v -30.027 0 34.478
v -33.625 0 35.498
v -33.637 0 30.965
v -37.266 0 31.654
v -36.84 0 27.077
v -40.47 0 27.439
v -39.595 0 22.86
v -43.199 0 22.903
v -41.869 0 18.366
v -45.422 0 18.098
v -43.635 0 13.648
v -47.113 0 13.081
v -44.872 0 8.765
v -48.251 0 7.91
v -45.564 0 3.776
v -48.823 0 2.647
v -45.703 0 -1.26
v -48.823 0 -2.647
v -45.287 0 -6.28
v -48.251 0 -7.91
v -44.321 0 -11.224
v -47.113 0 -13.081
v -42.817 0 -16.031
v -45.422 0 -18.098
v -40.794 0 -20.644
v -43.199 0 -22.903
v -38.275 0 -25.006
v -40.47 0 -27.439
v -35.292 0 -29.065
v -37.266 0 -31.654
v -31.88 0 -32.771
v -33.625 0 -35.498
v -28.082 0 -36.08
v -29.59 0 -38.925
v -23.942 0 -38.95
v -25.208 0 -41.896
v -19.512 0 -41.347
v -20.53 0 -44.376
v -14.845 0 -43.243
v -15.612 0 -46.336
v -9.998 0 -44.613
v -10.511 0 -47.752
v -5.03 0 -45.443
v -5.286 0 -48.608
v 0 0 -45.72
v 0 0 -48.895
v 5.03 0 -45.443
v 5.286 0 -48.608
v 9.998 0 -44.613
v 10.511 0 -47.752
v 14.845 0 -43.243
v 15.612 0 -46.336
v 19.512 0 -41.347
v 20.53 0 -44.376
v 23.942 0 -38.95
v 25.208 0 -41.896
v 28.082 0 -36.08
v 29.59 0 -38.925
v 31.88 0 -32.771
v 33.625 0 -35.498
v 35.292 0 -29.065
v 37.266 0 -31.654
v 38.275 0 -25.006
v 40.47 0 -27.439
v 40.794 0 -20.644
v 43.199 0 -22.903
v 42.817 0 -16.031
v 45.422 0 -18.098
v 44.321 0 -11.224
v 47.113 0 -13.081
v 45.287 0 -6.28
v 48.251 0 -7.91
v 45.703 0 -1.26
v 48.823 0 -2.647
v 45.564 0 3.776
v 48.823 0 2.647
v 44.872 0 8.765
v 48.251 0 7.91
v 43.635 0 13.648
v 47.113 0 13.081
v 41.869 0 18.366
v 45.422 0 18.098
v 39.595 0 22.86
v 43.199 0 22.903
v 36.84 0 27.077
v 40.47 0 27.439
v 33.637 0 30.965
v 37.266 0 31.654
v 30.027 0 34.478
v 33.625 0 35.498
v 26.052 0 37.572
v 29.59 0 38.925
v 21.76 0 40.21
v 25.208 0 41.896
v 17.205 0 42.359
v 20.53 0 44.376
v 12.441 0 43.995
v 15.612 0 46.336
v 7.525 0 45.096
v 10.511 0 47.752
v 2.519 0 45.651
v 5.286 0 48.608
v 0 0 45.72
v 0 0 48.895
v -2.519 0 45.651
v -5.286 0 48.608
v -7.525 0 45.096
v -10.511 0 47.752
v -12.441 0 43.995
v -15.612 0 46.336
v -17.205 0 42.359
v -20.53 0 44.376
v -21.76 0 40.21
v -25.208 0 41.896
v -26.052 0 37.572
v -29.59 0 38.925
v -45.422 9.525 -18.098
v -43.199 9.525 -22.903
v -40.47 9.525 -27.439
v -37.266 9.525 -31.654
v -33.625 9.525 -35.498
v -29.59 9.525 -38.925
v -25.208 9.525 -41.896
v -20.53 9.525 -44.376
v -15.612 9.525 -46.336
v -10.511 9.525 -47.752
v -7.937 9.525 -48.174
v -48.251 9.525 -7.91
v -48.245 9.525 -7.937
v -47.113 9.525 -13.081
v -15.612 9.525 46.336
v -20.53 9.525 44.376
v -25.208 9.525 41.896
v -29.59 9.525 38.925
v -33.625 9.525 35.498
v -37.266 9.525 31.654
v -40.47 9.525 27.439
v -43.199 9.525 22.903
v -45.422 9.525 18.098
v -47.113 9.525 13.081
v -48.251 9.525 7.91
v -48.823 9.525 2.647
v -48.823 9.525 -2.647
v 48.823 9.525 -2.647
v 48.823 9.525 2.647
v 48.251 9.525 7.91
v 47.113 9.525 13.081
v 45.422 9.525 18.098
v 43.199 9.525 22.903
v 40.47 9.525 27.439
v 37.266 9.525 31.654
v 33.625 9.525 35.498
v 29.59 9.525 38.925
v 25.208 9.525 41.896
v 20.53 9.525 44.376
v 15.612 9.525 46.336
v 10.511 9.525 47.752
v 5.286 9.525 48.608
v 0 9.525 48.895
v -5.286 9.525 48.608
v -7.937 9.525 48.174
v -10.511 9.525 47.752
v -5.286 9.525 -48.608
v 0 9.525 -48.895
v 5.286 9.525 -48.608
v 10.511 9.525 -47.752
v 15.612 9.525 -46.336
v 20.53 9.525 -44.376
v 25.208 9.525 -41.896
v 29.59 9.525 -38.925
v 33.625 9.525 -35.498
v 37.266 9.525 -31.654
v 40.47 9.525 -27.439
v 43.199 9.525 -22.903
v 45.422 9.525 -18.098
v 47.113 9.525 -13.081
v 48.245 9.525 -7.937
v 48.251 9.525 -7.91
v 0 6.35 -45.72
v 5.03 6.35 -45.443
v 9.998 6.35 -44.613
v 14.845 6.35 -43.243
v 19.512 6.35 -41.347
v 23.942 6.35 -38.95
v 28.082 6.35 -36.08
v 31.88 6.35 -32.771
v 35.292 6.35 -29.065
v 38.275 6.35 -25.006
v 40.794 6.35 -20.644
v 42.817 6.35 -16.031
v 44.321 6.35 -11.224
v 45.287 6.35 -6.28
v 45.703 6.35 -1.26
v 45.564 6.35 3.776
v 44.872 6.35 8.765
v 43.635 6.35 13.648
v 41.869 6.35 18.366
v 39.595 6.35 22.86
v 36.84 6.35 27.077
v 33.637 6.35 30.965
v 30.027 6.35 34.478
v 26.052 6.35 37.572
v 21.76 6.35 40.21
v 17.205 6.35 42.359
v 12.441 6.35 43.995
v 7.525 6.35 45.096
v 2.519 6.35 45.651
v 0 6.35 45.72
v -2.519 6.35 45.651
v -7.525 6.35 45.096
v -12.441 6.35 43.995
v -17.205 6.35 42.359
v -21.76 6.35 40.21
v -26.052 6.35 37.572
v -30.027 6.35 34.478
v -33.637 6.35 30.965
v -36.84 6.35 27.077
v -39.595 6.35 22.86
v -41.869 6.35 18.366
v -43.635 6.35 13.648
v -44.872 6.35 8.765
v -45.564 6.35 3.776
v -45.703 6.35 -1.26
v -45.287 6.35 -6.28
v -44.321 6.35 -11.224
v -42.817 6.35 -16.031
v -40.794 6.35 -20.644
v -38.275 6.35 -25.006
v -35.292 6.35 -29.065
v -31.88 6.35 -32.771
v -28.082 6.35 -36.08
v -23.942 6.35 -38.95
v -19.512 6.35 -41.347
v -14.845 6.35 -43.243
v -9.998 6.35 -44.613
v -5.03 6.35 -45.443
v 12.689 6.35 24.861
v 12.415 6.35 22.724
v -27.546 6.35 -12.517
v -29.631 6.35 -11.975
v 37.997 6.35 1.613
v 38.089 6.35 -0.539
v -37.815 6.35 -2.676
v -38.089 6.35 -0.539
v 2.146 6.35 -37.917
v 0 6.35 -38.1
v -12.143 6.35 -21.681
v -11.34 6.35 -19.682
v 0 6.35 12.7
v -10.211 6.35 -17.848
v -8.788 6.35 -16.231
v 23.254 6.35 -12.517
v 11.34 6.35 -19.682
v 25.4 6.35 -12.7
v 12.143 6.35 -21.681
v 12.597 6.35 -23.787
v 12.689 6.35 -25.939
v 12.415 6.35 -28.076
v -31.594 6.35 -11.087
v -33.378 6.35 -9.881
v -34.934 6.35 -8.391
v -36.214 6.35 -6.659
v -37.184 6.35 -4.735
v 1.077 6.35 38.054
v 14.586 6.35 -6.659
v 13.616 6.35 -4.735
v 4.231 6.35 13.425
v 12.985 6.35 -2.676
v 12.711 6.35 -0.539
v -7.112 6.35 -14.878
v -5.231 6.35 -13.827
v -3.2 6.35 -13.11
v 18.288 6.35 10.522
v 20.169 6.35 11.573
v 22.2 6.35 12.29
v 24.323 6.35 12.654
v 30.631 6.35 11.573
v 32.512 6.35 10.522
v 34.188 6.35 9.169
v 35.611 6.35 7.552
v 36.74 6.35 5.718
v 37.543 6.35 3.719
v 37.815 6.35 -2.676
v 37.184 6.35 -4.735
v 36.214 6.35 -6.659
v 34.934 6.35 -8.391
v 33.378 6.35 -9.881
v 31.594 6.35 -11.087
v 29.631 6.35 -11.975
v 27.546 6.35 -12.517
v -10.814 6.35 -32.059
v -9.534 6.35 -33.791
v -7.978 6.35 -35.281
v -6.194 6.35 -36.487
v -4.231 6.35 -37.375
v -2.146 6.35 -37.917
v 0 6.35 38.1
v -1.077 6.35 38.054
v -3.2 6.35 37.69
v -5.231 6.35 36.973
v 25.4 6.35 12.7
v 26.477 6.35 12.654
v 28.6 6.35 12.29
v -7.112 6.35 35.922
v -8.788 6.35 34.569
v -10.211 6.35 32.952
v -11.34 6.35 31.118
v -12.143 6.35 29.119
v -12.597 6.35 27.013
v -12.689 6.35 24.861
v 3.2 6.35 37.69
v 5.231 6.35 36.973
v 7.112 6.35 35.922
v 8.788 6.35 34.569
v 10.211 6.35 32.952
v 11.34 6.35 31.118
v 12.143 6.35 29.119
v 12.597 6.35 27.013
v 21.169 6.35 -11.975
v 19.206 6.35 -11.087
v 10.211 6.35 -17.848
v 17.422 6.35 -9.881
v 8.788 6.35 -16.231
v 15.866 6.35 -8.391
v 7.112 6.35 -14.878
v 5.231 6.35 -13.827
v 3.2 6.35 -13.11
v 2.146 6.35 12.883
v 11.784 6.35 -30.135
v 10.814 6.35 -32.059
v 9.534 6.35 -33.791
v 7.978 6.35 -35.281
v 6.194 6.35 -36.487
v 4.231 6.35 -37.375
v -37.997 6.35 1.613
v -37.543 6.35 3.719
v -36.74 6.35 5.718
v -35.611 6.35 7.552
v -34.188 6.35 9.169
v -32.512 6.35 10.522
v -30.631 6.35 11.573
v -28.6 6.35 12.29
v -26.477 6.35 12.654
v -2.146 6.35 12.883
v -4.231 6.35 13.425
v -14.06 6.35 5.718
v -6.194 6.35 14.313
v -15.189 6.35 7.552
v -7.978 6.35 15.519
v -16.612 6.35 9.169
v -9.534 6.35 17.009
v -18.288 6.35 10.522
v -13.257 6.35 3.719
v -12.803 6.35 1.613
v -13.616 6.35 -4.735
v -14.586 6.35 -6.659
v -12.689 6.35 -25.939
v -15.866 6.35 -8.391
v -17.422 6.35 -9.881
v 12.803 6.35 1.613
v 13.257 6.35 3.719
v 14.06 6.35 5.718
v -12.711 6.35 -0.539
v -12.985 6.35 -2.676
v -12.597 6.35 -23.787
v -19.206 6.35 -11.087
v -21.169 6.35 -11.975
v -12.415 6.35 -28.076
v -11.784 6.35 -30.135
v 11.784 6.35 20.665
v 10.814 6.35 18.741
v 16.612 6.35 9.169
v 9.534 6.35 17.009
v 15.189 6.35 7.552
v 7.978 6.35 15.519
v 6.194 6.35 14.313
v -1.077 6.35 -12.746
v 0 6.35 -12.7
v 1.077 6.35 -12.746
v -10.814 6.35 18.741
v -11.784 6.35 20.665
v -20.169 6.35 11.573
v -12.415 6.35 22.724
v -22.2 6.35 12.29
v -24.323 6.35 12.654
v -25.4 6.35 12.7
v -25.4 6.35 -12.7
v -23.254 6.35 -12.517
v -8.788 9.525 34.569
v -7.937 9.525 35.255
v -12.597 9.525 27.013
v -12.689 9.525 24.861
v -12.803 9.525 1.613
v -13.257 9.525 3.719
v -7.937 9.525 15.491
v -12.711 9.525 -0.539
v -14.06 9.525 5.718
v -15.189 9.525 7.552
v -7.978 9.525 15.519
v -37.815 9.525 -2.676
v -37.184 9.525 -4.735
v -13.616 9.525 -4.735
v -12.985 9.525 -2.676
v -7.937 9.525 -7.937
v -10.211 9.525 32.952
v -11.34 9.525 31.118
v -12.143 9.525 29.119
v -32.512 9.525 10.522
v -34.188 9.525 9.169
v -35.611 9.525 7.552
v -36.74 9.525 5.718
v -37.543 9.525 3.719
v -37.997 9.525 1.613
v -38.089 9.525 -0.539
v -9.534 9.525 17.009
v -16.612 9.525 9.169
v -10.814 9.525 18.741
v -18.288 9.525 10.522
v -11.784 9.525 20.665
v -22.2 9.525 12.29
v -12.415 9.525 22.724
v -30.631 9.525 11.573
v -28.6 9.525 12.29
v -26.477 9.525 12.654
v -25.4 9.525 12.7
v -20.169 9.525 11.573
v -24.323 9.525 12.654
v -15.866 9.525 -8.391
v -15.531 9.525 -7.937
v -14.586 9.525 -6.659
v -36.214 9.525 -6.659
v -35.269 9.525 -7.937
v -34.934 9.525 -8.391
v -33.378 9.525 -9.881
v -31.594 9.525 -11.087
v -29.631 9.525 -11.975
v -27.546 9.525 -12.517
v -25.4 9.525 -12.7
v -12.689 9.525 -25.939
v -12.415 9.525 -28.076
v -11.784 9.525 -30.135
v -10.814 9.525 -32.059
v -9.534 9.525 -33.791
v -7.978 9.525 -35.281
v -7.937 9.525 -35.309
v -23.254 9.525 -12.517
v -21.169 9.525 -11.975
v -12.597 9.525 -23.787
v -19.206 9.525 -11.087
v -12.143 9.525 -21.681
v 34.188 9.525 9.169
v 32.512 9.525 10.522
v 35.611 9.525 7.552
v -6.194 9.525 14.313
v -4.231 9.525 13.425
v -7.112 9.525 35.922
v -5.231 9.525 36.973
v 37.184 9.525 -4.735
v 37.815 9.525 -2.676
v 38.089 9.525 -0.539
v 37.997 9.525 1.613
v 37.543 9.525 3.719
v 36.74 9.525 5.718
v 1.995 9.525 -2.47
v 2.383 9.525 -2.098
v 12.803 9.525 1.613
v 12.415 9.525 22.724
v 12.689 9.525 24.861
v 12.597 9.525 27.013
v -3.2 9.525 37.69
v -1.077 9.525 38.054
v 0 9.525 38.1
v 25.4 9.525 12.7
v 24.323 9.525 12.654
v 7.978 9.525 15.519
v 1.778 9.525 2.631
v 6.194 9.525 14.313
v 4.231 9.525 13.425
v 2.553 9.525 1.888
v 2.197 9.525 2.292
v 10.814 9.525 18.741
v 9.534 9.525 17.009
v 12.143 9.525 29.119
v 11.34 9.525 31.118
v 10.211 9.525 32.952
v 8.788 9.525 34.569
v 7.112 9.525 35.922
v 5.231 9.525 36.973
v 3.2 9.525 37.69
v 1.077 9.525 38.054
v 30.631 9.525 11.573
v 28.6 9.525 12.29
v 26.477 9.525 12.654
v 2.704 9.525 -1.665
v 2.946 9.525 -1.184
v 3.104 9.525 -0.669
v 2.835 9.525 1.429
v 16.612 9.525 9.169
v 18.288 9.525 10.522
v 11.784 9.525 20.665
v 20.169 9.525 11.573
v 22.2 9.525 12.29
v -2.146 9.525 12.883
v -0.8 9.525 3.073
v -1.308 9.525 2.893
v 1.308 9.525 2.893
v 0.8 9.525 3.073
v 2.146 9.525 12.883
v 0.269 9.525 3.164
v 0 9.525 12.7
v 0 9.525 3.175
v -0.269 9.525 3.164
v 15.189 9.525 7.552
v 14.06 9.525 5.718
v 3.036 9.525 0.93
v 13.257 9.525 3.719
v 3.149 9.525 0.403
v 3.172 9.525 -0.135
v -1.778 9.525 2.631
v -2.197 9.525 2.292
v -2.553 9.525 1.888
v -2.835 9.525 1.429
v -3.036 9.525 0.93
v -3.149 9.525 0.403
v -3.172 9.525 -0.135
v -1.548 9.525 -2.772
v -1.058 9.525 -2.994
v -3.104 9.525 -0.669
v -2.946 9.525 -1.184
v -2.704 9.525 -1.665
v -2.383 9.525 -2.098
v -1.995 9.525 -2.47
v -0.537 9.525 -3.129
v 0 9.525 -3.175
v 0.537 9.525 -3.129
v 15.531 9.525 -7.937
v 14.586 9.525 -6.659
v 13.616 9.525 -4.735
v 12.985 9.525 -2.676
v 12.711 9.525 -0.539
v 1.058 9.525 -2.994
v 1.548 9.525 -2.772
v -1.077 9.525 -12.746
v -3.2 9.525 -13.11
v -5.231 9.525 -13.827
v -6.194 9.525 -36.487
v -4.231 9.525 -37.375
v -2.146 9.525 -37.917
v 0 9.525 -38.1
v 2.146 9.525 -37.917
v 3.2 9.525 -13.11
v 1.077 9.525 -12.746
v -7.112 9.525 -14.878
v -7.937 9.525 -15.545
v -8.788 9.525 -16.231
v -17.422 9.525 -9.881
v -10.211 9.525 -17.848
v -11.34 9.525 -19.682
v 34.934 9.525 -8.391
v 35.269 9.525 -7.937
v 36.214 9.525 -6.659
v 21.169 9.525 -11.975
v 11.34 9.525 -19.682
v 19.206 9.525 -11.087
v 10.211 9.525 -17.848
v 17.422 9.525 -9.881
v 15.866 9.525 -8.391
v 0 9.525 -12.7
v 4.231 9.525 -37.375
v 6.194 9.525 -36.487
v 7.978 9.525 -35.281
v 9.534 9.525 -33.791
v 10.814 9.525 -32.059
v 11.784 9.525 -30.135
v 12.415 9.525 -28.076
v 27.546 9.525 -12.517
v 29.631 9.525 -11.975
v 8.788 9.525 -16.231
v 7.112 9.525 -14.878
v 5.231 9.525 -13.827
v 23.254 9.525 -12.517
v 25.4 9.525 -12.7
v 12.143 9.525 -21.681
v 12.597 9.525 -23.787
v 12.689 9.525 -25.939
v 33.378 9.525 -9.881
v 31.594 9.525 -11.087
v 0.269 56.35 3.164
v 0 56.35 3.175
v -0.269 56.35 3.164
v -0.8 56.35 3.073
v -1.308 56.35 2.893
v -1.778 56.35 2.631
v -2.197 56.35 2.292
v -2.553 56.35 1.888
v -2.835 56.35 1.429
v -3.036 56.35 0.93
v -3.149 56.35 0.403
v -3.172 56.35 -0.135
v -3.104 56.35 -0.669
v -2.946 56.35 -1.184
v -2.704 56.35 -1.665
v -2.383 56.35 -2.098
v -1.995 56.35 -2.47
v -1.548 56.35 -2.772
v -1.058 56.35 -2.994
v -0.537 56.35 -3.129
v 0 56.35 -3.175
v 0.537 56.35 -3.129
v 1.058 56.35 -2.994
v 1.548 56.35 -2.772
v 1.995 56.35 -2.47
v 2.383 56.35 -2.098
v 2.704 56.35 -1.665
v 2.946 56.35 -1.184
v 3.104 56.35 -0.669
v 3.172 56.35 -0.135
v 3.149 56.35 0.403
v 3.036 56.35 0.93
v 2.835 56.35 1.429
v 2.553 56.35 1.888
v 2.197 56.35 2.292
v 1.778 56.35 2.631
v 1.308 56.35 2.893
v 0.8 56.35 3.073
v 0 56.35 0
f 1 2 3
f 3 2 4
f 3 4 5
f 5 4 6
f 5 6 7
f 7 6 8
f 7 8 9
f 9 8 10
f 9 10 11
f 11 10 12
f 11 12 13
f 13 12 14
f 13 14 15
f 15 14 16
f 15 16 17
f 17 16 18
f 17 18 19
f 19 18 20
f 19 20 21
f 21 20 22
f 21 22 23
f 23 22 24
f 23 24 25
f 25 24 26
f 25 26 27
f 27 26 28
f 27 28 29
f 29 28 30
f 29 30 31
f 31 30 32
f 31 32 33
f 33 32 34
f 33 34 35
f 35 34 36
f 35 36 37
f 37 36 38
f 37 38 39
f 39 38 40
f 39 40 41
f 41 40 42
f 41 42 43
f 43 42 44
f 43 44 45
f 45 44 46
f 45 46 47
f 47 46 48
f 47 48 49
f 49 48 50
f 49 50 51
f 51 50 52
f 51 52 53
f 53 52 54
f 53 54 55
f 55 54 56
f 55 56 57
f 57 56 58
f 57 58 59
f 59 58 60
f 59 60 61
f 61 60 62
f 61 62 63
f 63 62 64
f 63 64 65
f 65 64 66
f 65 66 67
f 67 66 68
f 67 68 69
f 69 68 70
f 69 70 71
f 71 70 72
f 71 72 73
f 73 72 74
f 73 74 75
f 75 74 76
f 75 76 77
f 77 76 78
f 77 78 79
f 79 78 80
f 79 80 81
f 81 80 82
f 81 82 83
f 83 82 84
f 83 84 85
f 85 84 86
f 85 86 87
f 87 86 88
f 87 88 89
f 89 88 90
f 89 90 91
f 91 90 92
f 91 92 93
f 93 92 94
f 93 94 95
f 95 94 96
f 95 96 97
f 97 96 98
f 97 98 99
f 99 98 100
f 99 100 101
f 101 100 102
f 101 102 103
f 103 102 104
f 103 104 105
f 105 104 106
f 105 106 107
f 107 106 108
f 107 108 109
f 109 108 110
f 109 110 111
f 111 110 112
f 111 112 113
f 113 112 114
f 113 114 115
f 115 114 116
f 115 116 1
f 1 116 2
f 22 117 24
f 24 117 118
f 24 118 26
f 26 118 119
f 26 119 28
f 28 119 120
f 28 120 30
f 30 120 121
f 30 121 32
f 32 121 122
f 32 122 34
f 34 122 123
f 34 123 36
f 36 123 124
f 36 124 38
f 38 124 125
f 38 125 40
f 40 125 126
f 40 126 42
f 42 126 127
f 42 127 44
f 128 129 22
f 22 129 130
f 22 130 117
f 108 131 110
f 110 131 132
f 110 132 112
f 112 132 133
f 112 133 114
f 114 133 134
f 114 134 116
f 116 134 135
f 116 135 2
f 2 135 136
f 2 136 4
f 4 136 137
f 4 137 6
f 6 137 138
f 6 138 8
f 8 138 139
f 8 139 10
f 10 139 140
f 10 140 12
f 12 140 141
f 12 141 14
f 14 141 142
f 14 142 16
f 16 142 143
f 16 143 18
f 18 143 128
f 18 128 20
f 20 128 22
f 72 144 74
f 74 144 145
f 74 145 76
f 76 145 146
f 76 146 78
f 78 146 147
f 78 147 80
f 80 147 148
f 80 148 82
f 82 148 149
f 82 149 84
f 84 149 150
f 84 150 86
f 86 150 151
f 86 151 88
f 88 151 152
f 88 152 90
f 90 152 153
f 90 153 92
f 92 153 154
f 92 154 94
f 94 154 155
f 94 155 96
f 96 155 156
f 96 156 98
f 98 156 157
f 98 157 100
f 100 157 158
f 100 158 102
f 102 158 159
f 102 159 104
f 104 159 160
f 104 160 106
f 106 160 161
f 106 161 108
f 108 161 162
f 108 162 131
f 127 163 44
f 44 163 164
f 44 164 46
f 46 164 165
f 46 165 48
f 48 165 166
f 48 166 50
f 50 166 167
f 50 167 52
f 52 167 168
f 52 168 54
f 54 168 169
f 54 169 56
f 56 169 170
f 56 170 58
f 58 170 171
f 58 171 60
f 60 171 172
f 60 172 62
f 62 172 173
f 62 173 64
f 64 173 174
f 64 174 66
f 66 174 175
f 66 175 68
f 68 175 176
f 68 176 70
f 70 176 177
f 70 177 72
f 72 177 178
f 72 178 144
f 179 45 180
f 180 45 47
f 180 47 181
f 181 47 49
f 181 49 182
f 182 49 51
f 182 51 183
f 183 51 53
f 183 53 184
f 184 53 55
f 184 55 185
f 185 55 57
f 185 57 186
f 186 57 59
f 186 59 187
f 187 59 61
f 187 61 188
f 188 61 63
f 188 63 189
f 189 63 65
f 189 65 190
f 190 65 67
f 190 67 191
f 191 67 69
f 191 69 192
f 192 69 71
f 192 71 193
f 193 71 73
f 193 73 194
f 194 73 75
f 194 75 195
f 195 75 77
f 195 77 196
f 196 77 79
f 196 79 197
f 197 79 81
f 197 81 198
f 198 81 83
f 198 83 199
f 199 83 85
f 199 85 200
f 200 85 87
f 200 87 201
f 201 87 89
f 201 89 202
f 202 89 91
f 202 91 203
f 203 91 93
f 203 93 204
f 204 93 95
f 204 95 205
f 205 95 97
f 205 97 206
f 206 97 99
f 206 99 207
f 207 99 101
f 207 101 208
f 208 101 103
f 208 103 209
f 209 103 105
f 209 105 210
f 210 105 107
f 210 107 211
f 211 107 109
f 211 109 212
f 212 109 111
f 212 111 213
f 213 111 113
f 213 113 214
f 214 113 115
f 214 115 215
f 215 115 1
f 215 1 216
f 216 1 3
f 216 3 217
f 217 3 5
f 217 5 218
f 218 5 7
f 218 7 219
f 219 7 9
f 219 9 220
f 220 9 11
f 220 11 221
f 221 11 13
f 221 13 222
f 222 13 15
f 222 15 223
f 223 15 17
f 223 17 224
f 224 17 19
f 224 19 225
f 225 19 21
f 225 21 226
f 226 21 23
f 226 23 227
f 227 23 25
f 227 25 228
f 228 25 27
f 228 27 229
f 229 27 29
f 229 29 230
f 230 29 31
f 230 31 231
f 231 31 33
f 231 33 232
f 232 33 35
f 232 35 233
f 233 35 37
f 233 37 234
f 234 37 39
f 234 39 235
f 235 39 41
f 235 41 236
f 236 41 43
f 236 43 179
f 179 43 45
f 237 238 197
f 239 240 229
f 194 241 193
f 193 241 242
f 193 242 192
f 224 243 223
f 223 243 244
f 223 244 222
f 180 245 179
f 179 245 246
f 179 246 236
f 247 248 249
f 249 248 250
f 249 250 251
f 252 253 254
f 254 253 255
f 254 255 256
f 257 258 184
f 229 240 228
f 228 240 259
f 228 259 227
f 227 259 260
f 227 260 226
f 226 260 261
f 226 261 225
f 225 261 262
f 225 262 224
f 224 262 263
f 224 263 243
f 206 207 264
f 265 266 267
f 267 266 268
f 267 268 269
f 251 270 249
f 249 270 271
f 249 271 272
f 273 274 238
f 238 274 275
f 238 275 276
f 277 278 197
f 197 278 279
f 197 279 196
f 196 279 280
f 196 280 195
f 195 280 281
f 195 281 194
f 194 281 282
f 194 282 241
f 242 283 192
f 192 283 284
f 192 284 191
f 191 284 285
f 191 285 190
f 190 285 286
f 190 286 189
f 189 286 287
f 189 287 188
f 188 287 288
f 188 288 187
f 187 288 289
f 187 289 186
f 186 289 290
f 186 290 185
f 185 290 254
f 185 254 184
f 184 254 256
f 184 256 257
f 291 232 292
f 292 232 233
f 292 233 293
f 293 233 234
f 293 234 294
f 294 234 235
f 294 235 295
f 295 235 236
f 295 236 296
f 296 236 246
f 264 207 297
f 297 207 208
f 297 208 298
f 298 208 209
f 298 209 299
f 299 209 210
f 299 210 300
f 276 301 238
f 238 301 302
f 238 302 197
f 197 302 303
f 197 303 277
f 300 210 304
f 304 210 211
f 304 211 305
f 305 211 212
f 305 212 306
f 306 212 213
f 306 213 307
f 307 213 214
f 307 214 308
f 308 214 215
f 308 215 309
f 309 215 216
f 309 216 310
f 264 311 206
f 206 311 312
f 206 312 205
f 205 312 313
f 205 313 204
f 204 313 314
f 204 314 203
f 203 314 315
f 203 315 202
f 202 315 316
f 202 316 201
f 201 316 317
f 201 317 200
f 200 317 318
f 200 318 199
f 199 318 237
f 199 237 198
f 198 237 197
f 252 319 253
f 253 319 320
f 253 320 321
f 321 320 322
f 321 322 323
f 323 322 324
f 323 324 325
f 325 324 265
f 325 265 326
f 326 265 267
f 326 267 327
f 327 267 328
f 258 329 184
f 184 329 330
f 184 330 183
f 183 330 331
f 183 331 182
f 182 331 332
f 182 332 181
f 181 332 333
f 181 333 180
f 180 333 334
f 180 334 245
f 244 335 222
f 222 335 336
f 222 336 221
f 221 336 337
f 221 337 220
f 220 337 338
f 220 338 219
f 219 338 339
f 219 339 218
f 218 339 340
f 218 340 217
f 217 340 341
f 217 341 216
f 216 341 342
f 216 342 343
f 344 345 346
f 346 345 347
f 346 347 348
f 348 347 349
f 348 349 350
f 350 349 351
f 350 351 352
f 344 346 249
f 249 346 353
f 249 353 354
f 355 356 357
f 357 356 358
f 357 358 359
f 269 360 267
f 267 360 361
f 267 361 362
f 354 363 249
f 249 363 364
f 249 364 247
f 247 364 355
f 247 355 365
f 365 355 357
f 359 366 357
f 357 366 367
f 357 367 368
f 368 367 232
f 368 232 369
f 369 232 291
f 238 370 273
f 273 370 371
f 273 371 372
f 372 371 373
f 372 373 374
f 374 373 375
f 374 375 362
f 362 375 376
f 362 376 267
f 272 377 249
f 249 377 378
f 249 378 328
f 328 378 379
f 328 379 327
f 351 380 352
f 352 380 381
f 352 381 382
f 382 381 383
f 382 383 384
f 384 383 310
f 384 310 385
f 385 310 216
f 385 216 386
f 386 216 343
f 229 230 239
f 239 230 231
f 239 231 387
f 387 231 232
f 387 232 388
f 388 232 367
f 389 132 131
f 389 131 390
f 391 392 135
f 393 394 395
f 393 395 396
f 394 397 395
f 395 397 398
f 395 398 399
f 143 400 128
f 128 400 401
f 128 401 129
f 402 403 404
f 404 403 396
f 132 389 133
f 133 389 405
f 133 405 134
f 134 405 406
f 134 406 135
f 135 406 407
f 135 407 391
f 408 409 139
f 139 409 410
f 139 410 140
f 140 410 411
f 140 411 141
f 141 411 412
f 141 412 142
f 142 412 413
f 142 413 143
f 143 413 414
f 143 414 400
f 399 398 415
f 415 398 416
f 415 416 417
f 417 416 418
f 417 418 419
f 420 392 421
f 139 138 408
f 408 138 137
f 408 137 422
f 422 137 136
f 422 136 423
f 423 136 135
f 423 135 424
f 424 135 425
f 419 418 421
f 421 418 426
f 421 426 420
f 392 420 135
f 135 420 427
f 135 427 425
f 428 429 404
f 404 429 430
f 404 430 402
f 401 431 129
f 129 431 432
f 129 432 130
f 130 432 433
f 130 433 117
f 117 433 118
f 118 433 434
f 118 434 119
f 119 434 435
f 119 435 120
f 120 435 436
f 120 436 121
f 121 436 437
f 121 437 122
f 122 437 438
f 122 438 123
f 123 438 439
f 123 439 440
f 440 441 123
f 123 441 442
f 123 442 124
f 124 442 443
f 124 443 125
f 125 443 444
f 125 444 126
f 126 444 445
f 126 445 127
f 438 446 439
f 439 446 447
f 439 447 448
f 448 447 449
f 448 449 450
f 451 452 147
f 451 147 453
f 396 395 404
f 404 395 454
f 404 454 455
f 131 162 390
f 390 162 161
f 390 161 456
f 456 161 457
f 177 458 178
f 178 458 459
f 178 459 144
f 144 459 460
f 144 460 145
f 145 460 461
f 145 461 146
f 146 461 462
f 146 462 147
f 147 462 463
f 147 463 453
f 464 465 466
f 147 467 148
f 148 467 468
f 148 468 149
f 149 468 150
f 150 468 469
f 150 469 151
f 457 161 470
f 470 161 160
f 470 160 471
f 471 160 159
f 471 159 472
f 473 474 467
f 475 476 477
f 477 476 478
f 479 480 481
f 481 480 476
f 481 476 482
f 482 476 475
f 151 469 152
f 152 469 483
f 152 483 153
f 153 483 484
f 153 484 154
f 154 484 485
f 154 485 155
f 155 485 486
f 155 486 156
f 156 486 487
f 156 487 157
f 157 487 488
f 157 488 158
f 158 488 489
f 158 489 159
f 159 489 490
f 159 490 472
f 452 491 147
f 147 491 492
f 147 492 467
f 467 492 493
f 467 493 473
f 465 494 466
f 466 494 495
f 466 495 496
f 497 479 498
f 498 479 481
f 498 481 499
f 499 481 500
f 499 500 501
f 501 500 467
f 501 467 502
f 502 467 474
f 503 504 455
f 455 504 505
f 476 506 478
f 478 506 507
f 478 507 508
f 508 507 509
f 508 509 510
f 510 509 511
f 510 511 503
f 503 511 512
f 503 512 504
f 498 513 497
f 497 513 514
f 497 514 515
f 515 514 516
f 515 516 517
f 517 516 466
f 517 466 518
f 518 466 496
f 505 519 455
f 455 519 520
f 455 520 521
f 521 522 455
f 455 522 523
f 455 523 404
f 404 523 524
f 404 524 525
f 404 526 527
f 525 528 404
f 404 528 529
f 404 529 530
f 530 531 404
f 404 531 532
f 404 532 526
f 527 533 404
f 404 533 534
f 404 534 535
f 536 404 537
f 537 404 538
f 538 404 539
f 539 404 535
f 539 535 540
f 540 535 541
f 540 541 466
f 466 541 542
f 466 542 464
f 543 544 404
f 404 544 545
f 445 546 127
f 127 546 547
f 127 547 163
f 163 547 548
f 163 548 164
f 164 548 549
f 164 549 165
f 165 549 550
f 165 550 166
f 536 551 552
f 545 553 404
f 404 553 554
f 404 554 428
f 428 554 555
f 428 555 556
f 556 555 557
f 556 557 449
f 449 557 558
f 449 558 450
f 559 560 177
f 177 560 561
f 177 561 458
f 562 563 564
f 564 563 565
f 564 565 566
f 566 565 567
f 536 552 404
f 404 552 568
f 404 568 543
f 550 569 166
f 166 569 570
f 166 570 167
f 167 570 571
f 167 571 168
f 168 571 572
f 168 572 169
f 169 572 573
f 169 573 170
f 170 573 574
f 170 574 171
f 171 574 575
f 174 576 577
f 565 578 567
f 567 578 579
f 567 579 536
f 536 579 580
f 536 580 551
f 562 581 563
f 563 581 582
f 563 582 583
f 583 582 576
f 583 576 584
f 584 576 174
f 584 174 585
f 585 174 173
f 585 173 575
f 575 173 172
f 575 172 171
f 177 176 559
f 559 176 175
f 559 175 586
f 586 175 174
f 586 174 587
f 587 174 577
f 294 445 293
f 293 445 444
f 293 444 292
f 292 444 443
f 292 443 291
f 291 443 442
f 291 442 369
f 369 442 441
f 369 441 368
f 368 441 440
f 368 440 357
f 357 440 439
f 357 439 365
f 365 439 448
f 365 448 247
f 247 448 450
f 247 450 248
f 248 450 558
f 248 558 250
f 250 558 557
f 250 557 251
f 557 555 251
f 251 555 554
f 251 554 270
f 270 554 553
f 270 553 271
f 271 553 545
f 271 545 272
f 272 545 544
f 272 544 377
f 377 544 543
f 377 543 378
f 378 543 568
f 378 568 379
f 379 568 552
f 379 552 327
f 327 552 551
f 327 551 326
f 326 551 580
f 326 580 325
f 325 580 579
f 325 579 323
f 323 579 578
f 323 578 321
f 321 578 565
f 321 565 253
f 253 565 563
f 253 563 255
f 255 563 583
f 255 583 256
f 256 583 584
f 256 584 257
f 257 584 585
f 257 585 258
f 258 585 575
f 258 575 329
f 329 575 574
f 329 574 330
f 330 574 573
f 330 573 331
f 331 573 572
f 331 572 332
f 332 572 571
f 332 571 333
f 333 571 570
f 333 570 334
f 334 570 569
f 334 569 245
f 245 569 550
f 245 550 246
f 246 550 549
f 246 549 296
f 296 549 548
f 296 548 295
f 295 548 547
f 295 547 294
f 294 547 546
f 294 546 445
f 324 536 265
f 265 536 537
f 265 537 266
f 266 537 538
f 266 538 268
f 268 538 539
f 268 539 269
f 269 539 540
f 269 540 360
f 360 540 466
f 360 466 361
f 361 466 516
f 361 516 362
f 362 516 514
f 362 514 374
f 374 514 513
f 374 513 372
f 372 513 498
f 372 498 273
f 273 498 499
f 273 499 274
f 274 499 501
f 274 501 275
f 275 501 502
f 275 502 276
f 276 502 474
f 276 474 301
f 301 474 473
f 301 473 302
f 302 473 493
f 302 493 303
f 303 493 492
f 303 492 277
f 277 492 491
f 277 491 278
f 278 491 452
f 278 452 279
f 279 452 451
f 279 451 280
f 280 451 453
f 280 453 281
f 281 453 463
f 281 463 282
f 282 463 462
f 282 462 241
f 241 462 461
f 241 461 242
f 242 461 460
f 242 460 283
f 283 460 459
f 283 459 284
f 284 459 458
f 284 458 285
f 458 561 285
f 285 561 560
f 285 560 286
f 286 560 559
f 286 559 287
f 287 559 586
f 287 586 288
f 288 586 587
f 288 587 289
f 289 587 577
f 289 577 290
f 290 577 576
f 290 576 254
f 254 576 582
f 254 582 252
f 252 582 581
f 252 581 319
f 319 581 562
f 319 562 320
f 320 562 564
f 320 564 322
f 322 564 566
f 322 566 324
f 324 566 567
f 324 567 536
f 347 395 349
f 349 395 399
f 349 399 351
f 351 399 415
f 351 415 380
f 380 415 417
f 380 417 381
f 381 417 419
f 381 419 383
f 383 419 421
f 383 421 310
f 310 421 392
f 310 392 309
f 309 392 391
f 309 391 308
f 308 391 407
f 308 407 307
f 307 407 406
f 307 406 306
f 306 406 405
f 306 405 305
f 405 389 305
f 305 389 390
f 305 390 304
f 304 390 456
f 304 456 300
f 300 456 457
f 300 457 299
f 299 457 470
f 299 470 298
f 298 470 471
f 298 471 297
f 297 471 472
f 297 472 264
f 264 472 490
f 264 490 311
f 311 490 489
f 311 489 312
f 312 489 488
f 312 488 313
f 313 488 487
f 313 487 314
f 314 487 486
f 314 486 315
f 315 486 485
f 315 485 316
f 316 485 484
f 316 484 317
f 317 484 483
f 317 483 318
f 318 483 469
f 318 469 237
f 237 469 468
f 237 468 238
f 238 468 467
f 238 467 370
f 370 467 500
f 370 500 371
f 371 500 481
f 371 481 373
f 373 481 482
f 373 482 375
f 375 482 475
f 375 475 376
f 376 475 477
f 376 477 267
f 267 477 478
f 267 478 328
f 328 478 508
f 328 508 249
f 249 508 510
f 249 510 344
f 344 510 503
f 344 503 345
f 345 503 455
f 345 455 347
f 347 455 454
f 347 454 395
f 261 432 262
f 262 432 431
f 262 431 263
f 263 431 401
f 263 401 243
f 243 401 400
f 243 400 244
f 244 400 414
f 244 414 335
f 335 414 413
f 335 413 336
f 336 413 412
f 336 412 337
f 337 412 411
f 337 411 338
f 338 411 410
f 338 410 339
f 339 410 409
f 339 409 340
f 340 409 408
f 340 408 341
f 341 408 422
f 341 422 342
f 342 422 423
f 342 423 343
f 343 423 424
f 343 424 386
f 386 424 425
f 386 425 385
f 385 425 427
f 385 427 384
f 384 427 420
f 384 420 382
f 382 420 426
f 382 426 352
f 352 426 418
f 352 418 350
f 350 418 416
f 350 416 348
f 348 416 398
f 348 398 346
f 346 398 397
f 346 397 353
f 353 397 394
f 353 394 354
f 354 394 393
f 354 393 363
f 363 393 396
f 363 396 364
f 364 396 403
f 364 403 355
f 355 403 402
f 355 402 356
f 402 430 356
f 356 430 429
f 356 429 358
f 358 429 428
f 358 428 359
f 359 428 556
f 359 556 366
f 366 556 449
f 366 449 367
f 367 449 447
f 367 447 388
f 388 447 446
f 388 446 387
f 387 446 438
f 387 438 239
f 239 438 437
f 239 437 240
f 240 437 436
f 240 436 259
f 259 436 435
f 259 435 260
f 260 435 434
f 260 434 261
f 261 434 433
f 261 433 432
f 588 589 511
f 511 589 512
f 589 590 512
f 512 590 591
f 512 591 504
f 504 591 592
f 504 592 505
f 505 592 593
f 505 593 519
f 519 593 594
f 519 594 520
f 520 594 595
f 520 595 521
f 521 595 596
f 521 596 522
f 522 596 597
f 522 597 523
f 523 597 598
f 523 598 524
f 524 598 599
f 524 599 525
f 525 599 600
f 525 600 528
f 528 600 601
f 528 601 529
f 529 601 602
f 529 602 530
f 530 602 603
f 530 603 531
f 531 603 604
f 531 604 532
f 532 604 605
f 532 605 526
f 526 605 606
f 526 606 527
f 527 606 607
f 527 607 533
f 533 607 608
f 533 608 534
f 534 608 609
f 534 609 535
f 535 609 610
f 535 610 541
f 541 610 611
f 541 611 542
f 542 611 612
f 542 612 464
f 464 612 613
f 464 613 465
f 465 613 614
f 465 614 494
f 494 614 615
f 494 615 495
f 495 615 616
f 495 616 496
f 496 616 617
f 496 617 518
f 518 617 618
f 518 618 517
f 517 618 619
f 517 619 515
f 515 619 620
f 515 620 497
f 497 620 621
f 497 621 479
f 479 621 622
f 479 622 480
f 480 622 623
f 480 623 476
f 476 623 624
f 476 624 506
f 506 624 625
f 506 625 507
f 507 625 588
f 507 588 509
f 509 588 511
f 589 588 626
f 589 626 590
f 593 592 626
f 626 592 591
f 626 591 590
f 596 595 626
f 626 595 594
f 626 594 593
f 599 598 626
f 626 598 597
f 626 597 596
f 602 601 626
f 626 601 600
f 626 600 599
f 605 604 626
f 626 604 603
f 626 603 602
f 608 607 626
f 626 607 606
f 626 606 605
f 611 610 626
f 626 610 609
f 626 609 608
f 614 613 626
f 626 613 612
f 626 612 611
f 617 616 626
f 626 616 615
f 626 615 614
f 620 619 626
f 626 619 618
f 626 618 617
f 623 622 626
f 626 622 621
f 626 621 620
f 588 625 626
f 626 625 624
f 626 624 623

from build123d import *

# Parameters (mm, degrees)
SKETCH1_R           = 48.895
SKETCH1_R_2         = 45.72
BOSS_EXTRUDE1_DEPTH = 6.35
SKETCH2_R           = 48.895
SKETCH2_R_2         = 12.7
BOSS_EXTRUDE2_DEPTH = 3.175
SKETCH3_R           = 3.175
BOSS_EXTRUDE3_DEPTH = 46.825


with BuildPart() as part:
    # Sketch1 → Boss-Extrude1 (new body)
    with BuildSketch(Plane(origin=(0, 0, 0), x_dir=(1, 0, 0), z_dir=(0, 1, 0))):
        with Locations(Location((0, 0, 0), (0, 0, 270))):
            Circle(SKETCH1_R)
        with Locations(Location((0, 0, 0), (0, 0, 270))):
            Circle(SKETCH1_R_2, mode=Mode.SUBTRACT)
    extrude(amount=BOSS_EXTRUDE1_DEPTH)

    # Sketch2 → Boss-Extrude2 (add)
    with BuildSketch(Plane(origin=(0, 6.35, 0), x_dir=(1, 0, 0), z_dir=(0, 1, 0))):
        with Locations(Location((0, 0, 0), (0, 0, 270))):
            Circle(SKETCH2_R)
        with Locations(Location((0, 25.4, 0), (0, 0, 270))):
            Circle(SKETCH2_R_2, mode=Mode.SUBTRACT)
        with Locations(Location((25.4, 0, 0), (0, 0, 270))):
            Circle(SKETCH2_R_2, mode=Mode.SUBTRACT)
        with Locations(Location((0, -25.4, 0), (0, 0, 270))):
            Circle(SKETCH2_R_2, mode=Mode.SUBTRACT)
        with Locations(Location((-25.4, 0, 0), (0, 0, 270))):
            Circle(SKETCH2_R_2, mode=Mode.SUBTRACT)
    extrude(amount=BOSS_EXTRUDE2_DEPTH)

    # Sketch3 → Boss-Extrude3 (add)
    with BuildSketch(Plane(origin=(0, 9.525, 0), x_dir=(1, 0, 0), z_dir=(0, 1, 0))):
        with Locations(Location((0, 0, 0), (0, 0, 270))):
            Circle(SKETCH3_R)
    extrude(amount=BOSS_EXTRUDE3_DEPTH)


solid = part.part
